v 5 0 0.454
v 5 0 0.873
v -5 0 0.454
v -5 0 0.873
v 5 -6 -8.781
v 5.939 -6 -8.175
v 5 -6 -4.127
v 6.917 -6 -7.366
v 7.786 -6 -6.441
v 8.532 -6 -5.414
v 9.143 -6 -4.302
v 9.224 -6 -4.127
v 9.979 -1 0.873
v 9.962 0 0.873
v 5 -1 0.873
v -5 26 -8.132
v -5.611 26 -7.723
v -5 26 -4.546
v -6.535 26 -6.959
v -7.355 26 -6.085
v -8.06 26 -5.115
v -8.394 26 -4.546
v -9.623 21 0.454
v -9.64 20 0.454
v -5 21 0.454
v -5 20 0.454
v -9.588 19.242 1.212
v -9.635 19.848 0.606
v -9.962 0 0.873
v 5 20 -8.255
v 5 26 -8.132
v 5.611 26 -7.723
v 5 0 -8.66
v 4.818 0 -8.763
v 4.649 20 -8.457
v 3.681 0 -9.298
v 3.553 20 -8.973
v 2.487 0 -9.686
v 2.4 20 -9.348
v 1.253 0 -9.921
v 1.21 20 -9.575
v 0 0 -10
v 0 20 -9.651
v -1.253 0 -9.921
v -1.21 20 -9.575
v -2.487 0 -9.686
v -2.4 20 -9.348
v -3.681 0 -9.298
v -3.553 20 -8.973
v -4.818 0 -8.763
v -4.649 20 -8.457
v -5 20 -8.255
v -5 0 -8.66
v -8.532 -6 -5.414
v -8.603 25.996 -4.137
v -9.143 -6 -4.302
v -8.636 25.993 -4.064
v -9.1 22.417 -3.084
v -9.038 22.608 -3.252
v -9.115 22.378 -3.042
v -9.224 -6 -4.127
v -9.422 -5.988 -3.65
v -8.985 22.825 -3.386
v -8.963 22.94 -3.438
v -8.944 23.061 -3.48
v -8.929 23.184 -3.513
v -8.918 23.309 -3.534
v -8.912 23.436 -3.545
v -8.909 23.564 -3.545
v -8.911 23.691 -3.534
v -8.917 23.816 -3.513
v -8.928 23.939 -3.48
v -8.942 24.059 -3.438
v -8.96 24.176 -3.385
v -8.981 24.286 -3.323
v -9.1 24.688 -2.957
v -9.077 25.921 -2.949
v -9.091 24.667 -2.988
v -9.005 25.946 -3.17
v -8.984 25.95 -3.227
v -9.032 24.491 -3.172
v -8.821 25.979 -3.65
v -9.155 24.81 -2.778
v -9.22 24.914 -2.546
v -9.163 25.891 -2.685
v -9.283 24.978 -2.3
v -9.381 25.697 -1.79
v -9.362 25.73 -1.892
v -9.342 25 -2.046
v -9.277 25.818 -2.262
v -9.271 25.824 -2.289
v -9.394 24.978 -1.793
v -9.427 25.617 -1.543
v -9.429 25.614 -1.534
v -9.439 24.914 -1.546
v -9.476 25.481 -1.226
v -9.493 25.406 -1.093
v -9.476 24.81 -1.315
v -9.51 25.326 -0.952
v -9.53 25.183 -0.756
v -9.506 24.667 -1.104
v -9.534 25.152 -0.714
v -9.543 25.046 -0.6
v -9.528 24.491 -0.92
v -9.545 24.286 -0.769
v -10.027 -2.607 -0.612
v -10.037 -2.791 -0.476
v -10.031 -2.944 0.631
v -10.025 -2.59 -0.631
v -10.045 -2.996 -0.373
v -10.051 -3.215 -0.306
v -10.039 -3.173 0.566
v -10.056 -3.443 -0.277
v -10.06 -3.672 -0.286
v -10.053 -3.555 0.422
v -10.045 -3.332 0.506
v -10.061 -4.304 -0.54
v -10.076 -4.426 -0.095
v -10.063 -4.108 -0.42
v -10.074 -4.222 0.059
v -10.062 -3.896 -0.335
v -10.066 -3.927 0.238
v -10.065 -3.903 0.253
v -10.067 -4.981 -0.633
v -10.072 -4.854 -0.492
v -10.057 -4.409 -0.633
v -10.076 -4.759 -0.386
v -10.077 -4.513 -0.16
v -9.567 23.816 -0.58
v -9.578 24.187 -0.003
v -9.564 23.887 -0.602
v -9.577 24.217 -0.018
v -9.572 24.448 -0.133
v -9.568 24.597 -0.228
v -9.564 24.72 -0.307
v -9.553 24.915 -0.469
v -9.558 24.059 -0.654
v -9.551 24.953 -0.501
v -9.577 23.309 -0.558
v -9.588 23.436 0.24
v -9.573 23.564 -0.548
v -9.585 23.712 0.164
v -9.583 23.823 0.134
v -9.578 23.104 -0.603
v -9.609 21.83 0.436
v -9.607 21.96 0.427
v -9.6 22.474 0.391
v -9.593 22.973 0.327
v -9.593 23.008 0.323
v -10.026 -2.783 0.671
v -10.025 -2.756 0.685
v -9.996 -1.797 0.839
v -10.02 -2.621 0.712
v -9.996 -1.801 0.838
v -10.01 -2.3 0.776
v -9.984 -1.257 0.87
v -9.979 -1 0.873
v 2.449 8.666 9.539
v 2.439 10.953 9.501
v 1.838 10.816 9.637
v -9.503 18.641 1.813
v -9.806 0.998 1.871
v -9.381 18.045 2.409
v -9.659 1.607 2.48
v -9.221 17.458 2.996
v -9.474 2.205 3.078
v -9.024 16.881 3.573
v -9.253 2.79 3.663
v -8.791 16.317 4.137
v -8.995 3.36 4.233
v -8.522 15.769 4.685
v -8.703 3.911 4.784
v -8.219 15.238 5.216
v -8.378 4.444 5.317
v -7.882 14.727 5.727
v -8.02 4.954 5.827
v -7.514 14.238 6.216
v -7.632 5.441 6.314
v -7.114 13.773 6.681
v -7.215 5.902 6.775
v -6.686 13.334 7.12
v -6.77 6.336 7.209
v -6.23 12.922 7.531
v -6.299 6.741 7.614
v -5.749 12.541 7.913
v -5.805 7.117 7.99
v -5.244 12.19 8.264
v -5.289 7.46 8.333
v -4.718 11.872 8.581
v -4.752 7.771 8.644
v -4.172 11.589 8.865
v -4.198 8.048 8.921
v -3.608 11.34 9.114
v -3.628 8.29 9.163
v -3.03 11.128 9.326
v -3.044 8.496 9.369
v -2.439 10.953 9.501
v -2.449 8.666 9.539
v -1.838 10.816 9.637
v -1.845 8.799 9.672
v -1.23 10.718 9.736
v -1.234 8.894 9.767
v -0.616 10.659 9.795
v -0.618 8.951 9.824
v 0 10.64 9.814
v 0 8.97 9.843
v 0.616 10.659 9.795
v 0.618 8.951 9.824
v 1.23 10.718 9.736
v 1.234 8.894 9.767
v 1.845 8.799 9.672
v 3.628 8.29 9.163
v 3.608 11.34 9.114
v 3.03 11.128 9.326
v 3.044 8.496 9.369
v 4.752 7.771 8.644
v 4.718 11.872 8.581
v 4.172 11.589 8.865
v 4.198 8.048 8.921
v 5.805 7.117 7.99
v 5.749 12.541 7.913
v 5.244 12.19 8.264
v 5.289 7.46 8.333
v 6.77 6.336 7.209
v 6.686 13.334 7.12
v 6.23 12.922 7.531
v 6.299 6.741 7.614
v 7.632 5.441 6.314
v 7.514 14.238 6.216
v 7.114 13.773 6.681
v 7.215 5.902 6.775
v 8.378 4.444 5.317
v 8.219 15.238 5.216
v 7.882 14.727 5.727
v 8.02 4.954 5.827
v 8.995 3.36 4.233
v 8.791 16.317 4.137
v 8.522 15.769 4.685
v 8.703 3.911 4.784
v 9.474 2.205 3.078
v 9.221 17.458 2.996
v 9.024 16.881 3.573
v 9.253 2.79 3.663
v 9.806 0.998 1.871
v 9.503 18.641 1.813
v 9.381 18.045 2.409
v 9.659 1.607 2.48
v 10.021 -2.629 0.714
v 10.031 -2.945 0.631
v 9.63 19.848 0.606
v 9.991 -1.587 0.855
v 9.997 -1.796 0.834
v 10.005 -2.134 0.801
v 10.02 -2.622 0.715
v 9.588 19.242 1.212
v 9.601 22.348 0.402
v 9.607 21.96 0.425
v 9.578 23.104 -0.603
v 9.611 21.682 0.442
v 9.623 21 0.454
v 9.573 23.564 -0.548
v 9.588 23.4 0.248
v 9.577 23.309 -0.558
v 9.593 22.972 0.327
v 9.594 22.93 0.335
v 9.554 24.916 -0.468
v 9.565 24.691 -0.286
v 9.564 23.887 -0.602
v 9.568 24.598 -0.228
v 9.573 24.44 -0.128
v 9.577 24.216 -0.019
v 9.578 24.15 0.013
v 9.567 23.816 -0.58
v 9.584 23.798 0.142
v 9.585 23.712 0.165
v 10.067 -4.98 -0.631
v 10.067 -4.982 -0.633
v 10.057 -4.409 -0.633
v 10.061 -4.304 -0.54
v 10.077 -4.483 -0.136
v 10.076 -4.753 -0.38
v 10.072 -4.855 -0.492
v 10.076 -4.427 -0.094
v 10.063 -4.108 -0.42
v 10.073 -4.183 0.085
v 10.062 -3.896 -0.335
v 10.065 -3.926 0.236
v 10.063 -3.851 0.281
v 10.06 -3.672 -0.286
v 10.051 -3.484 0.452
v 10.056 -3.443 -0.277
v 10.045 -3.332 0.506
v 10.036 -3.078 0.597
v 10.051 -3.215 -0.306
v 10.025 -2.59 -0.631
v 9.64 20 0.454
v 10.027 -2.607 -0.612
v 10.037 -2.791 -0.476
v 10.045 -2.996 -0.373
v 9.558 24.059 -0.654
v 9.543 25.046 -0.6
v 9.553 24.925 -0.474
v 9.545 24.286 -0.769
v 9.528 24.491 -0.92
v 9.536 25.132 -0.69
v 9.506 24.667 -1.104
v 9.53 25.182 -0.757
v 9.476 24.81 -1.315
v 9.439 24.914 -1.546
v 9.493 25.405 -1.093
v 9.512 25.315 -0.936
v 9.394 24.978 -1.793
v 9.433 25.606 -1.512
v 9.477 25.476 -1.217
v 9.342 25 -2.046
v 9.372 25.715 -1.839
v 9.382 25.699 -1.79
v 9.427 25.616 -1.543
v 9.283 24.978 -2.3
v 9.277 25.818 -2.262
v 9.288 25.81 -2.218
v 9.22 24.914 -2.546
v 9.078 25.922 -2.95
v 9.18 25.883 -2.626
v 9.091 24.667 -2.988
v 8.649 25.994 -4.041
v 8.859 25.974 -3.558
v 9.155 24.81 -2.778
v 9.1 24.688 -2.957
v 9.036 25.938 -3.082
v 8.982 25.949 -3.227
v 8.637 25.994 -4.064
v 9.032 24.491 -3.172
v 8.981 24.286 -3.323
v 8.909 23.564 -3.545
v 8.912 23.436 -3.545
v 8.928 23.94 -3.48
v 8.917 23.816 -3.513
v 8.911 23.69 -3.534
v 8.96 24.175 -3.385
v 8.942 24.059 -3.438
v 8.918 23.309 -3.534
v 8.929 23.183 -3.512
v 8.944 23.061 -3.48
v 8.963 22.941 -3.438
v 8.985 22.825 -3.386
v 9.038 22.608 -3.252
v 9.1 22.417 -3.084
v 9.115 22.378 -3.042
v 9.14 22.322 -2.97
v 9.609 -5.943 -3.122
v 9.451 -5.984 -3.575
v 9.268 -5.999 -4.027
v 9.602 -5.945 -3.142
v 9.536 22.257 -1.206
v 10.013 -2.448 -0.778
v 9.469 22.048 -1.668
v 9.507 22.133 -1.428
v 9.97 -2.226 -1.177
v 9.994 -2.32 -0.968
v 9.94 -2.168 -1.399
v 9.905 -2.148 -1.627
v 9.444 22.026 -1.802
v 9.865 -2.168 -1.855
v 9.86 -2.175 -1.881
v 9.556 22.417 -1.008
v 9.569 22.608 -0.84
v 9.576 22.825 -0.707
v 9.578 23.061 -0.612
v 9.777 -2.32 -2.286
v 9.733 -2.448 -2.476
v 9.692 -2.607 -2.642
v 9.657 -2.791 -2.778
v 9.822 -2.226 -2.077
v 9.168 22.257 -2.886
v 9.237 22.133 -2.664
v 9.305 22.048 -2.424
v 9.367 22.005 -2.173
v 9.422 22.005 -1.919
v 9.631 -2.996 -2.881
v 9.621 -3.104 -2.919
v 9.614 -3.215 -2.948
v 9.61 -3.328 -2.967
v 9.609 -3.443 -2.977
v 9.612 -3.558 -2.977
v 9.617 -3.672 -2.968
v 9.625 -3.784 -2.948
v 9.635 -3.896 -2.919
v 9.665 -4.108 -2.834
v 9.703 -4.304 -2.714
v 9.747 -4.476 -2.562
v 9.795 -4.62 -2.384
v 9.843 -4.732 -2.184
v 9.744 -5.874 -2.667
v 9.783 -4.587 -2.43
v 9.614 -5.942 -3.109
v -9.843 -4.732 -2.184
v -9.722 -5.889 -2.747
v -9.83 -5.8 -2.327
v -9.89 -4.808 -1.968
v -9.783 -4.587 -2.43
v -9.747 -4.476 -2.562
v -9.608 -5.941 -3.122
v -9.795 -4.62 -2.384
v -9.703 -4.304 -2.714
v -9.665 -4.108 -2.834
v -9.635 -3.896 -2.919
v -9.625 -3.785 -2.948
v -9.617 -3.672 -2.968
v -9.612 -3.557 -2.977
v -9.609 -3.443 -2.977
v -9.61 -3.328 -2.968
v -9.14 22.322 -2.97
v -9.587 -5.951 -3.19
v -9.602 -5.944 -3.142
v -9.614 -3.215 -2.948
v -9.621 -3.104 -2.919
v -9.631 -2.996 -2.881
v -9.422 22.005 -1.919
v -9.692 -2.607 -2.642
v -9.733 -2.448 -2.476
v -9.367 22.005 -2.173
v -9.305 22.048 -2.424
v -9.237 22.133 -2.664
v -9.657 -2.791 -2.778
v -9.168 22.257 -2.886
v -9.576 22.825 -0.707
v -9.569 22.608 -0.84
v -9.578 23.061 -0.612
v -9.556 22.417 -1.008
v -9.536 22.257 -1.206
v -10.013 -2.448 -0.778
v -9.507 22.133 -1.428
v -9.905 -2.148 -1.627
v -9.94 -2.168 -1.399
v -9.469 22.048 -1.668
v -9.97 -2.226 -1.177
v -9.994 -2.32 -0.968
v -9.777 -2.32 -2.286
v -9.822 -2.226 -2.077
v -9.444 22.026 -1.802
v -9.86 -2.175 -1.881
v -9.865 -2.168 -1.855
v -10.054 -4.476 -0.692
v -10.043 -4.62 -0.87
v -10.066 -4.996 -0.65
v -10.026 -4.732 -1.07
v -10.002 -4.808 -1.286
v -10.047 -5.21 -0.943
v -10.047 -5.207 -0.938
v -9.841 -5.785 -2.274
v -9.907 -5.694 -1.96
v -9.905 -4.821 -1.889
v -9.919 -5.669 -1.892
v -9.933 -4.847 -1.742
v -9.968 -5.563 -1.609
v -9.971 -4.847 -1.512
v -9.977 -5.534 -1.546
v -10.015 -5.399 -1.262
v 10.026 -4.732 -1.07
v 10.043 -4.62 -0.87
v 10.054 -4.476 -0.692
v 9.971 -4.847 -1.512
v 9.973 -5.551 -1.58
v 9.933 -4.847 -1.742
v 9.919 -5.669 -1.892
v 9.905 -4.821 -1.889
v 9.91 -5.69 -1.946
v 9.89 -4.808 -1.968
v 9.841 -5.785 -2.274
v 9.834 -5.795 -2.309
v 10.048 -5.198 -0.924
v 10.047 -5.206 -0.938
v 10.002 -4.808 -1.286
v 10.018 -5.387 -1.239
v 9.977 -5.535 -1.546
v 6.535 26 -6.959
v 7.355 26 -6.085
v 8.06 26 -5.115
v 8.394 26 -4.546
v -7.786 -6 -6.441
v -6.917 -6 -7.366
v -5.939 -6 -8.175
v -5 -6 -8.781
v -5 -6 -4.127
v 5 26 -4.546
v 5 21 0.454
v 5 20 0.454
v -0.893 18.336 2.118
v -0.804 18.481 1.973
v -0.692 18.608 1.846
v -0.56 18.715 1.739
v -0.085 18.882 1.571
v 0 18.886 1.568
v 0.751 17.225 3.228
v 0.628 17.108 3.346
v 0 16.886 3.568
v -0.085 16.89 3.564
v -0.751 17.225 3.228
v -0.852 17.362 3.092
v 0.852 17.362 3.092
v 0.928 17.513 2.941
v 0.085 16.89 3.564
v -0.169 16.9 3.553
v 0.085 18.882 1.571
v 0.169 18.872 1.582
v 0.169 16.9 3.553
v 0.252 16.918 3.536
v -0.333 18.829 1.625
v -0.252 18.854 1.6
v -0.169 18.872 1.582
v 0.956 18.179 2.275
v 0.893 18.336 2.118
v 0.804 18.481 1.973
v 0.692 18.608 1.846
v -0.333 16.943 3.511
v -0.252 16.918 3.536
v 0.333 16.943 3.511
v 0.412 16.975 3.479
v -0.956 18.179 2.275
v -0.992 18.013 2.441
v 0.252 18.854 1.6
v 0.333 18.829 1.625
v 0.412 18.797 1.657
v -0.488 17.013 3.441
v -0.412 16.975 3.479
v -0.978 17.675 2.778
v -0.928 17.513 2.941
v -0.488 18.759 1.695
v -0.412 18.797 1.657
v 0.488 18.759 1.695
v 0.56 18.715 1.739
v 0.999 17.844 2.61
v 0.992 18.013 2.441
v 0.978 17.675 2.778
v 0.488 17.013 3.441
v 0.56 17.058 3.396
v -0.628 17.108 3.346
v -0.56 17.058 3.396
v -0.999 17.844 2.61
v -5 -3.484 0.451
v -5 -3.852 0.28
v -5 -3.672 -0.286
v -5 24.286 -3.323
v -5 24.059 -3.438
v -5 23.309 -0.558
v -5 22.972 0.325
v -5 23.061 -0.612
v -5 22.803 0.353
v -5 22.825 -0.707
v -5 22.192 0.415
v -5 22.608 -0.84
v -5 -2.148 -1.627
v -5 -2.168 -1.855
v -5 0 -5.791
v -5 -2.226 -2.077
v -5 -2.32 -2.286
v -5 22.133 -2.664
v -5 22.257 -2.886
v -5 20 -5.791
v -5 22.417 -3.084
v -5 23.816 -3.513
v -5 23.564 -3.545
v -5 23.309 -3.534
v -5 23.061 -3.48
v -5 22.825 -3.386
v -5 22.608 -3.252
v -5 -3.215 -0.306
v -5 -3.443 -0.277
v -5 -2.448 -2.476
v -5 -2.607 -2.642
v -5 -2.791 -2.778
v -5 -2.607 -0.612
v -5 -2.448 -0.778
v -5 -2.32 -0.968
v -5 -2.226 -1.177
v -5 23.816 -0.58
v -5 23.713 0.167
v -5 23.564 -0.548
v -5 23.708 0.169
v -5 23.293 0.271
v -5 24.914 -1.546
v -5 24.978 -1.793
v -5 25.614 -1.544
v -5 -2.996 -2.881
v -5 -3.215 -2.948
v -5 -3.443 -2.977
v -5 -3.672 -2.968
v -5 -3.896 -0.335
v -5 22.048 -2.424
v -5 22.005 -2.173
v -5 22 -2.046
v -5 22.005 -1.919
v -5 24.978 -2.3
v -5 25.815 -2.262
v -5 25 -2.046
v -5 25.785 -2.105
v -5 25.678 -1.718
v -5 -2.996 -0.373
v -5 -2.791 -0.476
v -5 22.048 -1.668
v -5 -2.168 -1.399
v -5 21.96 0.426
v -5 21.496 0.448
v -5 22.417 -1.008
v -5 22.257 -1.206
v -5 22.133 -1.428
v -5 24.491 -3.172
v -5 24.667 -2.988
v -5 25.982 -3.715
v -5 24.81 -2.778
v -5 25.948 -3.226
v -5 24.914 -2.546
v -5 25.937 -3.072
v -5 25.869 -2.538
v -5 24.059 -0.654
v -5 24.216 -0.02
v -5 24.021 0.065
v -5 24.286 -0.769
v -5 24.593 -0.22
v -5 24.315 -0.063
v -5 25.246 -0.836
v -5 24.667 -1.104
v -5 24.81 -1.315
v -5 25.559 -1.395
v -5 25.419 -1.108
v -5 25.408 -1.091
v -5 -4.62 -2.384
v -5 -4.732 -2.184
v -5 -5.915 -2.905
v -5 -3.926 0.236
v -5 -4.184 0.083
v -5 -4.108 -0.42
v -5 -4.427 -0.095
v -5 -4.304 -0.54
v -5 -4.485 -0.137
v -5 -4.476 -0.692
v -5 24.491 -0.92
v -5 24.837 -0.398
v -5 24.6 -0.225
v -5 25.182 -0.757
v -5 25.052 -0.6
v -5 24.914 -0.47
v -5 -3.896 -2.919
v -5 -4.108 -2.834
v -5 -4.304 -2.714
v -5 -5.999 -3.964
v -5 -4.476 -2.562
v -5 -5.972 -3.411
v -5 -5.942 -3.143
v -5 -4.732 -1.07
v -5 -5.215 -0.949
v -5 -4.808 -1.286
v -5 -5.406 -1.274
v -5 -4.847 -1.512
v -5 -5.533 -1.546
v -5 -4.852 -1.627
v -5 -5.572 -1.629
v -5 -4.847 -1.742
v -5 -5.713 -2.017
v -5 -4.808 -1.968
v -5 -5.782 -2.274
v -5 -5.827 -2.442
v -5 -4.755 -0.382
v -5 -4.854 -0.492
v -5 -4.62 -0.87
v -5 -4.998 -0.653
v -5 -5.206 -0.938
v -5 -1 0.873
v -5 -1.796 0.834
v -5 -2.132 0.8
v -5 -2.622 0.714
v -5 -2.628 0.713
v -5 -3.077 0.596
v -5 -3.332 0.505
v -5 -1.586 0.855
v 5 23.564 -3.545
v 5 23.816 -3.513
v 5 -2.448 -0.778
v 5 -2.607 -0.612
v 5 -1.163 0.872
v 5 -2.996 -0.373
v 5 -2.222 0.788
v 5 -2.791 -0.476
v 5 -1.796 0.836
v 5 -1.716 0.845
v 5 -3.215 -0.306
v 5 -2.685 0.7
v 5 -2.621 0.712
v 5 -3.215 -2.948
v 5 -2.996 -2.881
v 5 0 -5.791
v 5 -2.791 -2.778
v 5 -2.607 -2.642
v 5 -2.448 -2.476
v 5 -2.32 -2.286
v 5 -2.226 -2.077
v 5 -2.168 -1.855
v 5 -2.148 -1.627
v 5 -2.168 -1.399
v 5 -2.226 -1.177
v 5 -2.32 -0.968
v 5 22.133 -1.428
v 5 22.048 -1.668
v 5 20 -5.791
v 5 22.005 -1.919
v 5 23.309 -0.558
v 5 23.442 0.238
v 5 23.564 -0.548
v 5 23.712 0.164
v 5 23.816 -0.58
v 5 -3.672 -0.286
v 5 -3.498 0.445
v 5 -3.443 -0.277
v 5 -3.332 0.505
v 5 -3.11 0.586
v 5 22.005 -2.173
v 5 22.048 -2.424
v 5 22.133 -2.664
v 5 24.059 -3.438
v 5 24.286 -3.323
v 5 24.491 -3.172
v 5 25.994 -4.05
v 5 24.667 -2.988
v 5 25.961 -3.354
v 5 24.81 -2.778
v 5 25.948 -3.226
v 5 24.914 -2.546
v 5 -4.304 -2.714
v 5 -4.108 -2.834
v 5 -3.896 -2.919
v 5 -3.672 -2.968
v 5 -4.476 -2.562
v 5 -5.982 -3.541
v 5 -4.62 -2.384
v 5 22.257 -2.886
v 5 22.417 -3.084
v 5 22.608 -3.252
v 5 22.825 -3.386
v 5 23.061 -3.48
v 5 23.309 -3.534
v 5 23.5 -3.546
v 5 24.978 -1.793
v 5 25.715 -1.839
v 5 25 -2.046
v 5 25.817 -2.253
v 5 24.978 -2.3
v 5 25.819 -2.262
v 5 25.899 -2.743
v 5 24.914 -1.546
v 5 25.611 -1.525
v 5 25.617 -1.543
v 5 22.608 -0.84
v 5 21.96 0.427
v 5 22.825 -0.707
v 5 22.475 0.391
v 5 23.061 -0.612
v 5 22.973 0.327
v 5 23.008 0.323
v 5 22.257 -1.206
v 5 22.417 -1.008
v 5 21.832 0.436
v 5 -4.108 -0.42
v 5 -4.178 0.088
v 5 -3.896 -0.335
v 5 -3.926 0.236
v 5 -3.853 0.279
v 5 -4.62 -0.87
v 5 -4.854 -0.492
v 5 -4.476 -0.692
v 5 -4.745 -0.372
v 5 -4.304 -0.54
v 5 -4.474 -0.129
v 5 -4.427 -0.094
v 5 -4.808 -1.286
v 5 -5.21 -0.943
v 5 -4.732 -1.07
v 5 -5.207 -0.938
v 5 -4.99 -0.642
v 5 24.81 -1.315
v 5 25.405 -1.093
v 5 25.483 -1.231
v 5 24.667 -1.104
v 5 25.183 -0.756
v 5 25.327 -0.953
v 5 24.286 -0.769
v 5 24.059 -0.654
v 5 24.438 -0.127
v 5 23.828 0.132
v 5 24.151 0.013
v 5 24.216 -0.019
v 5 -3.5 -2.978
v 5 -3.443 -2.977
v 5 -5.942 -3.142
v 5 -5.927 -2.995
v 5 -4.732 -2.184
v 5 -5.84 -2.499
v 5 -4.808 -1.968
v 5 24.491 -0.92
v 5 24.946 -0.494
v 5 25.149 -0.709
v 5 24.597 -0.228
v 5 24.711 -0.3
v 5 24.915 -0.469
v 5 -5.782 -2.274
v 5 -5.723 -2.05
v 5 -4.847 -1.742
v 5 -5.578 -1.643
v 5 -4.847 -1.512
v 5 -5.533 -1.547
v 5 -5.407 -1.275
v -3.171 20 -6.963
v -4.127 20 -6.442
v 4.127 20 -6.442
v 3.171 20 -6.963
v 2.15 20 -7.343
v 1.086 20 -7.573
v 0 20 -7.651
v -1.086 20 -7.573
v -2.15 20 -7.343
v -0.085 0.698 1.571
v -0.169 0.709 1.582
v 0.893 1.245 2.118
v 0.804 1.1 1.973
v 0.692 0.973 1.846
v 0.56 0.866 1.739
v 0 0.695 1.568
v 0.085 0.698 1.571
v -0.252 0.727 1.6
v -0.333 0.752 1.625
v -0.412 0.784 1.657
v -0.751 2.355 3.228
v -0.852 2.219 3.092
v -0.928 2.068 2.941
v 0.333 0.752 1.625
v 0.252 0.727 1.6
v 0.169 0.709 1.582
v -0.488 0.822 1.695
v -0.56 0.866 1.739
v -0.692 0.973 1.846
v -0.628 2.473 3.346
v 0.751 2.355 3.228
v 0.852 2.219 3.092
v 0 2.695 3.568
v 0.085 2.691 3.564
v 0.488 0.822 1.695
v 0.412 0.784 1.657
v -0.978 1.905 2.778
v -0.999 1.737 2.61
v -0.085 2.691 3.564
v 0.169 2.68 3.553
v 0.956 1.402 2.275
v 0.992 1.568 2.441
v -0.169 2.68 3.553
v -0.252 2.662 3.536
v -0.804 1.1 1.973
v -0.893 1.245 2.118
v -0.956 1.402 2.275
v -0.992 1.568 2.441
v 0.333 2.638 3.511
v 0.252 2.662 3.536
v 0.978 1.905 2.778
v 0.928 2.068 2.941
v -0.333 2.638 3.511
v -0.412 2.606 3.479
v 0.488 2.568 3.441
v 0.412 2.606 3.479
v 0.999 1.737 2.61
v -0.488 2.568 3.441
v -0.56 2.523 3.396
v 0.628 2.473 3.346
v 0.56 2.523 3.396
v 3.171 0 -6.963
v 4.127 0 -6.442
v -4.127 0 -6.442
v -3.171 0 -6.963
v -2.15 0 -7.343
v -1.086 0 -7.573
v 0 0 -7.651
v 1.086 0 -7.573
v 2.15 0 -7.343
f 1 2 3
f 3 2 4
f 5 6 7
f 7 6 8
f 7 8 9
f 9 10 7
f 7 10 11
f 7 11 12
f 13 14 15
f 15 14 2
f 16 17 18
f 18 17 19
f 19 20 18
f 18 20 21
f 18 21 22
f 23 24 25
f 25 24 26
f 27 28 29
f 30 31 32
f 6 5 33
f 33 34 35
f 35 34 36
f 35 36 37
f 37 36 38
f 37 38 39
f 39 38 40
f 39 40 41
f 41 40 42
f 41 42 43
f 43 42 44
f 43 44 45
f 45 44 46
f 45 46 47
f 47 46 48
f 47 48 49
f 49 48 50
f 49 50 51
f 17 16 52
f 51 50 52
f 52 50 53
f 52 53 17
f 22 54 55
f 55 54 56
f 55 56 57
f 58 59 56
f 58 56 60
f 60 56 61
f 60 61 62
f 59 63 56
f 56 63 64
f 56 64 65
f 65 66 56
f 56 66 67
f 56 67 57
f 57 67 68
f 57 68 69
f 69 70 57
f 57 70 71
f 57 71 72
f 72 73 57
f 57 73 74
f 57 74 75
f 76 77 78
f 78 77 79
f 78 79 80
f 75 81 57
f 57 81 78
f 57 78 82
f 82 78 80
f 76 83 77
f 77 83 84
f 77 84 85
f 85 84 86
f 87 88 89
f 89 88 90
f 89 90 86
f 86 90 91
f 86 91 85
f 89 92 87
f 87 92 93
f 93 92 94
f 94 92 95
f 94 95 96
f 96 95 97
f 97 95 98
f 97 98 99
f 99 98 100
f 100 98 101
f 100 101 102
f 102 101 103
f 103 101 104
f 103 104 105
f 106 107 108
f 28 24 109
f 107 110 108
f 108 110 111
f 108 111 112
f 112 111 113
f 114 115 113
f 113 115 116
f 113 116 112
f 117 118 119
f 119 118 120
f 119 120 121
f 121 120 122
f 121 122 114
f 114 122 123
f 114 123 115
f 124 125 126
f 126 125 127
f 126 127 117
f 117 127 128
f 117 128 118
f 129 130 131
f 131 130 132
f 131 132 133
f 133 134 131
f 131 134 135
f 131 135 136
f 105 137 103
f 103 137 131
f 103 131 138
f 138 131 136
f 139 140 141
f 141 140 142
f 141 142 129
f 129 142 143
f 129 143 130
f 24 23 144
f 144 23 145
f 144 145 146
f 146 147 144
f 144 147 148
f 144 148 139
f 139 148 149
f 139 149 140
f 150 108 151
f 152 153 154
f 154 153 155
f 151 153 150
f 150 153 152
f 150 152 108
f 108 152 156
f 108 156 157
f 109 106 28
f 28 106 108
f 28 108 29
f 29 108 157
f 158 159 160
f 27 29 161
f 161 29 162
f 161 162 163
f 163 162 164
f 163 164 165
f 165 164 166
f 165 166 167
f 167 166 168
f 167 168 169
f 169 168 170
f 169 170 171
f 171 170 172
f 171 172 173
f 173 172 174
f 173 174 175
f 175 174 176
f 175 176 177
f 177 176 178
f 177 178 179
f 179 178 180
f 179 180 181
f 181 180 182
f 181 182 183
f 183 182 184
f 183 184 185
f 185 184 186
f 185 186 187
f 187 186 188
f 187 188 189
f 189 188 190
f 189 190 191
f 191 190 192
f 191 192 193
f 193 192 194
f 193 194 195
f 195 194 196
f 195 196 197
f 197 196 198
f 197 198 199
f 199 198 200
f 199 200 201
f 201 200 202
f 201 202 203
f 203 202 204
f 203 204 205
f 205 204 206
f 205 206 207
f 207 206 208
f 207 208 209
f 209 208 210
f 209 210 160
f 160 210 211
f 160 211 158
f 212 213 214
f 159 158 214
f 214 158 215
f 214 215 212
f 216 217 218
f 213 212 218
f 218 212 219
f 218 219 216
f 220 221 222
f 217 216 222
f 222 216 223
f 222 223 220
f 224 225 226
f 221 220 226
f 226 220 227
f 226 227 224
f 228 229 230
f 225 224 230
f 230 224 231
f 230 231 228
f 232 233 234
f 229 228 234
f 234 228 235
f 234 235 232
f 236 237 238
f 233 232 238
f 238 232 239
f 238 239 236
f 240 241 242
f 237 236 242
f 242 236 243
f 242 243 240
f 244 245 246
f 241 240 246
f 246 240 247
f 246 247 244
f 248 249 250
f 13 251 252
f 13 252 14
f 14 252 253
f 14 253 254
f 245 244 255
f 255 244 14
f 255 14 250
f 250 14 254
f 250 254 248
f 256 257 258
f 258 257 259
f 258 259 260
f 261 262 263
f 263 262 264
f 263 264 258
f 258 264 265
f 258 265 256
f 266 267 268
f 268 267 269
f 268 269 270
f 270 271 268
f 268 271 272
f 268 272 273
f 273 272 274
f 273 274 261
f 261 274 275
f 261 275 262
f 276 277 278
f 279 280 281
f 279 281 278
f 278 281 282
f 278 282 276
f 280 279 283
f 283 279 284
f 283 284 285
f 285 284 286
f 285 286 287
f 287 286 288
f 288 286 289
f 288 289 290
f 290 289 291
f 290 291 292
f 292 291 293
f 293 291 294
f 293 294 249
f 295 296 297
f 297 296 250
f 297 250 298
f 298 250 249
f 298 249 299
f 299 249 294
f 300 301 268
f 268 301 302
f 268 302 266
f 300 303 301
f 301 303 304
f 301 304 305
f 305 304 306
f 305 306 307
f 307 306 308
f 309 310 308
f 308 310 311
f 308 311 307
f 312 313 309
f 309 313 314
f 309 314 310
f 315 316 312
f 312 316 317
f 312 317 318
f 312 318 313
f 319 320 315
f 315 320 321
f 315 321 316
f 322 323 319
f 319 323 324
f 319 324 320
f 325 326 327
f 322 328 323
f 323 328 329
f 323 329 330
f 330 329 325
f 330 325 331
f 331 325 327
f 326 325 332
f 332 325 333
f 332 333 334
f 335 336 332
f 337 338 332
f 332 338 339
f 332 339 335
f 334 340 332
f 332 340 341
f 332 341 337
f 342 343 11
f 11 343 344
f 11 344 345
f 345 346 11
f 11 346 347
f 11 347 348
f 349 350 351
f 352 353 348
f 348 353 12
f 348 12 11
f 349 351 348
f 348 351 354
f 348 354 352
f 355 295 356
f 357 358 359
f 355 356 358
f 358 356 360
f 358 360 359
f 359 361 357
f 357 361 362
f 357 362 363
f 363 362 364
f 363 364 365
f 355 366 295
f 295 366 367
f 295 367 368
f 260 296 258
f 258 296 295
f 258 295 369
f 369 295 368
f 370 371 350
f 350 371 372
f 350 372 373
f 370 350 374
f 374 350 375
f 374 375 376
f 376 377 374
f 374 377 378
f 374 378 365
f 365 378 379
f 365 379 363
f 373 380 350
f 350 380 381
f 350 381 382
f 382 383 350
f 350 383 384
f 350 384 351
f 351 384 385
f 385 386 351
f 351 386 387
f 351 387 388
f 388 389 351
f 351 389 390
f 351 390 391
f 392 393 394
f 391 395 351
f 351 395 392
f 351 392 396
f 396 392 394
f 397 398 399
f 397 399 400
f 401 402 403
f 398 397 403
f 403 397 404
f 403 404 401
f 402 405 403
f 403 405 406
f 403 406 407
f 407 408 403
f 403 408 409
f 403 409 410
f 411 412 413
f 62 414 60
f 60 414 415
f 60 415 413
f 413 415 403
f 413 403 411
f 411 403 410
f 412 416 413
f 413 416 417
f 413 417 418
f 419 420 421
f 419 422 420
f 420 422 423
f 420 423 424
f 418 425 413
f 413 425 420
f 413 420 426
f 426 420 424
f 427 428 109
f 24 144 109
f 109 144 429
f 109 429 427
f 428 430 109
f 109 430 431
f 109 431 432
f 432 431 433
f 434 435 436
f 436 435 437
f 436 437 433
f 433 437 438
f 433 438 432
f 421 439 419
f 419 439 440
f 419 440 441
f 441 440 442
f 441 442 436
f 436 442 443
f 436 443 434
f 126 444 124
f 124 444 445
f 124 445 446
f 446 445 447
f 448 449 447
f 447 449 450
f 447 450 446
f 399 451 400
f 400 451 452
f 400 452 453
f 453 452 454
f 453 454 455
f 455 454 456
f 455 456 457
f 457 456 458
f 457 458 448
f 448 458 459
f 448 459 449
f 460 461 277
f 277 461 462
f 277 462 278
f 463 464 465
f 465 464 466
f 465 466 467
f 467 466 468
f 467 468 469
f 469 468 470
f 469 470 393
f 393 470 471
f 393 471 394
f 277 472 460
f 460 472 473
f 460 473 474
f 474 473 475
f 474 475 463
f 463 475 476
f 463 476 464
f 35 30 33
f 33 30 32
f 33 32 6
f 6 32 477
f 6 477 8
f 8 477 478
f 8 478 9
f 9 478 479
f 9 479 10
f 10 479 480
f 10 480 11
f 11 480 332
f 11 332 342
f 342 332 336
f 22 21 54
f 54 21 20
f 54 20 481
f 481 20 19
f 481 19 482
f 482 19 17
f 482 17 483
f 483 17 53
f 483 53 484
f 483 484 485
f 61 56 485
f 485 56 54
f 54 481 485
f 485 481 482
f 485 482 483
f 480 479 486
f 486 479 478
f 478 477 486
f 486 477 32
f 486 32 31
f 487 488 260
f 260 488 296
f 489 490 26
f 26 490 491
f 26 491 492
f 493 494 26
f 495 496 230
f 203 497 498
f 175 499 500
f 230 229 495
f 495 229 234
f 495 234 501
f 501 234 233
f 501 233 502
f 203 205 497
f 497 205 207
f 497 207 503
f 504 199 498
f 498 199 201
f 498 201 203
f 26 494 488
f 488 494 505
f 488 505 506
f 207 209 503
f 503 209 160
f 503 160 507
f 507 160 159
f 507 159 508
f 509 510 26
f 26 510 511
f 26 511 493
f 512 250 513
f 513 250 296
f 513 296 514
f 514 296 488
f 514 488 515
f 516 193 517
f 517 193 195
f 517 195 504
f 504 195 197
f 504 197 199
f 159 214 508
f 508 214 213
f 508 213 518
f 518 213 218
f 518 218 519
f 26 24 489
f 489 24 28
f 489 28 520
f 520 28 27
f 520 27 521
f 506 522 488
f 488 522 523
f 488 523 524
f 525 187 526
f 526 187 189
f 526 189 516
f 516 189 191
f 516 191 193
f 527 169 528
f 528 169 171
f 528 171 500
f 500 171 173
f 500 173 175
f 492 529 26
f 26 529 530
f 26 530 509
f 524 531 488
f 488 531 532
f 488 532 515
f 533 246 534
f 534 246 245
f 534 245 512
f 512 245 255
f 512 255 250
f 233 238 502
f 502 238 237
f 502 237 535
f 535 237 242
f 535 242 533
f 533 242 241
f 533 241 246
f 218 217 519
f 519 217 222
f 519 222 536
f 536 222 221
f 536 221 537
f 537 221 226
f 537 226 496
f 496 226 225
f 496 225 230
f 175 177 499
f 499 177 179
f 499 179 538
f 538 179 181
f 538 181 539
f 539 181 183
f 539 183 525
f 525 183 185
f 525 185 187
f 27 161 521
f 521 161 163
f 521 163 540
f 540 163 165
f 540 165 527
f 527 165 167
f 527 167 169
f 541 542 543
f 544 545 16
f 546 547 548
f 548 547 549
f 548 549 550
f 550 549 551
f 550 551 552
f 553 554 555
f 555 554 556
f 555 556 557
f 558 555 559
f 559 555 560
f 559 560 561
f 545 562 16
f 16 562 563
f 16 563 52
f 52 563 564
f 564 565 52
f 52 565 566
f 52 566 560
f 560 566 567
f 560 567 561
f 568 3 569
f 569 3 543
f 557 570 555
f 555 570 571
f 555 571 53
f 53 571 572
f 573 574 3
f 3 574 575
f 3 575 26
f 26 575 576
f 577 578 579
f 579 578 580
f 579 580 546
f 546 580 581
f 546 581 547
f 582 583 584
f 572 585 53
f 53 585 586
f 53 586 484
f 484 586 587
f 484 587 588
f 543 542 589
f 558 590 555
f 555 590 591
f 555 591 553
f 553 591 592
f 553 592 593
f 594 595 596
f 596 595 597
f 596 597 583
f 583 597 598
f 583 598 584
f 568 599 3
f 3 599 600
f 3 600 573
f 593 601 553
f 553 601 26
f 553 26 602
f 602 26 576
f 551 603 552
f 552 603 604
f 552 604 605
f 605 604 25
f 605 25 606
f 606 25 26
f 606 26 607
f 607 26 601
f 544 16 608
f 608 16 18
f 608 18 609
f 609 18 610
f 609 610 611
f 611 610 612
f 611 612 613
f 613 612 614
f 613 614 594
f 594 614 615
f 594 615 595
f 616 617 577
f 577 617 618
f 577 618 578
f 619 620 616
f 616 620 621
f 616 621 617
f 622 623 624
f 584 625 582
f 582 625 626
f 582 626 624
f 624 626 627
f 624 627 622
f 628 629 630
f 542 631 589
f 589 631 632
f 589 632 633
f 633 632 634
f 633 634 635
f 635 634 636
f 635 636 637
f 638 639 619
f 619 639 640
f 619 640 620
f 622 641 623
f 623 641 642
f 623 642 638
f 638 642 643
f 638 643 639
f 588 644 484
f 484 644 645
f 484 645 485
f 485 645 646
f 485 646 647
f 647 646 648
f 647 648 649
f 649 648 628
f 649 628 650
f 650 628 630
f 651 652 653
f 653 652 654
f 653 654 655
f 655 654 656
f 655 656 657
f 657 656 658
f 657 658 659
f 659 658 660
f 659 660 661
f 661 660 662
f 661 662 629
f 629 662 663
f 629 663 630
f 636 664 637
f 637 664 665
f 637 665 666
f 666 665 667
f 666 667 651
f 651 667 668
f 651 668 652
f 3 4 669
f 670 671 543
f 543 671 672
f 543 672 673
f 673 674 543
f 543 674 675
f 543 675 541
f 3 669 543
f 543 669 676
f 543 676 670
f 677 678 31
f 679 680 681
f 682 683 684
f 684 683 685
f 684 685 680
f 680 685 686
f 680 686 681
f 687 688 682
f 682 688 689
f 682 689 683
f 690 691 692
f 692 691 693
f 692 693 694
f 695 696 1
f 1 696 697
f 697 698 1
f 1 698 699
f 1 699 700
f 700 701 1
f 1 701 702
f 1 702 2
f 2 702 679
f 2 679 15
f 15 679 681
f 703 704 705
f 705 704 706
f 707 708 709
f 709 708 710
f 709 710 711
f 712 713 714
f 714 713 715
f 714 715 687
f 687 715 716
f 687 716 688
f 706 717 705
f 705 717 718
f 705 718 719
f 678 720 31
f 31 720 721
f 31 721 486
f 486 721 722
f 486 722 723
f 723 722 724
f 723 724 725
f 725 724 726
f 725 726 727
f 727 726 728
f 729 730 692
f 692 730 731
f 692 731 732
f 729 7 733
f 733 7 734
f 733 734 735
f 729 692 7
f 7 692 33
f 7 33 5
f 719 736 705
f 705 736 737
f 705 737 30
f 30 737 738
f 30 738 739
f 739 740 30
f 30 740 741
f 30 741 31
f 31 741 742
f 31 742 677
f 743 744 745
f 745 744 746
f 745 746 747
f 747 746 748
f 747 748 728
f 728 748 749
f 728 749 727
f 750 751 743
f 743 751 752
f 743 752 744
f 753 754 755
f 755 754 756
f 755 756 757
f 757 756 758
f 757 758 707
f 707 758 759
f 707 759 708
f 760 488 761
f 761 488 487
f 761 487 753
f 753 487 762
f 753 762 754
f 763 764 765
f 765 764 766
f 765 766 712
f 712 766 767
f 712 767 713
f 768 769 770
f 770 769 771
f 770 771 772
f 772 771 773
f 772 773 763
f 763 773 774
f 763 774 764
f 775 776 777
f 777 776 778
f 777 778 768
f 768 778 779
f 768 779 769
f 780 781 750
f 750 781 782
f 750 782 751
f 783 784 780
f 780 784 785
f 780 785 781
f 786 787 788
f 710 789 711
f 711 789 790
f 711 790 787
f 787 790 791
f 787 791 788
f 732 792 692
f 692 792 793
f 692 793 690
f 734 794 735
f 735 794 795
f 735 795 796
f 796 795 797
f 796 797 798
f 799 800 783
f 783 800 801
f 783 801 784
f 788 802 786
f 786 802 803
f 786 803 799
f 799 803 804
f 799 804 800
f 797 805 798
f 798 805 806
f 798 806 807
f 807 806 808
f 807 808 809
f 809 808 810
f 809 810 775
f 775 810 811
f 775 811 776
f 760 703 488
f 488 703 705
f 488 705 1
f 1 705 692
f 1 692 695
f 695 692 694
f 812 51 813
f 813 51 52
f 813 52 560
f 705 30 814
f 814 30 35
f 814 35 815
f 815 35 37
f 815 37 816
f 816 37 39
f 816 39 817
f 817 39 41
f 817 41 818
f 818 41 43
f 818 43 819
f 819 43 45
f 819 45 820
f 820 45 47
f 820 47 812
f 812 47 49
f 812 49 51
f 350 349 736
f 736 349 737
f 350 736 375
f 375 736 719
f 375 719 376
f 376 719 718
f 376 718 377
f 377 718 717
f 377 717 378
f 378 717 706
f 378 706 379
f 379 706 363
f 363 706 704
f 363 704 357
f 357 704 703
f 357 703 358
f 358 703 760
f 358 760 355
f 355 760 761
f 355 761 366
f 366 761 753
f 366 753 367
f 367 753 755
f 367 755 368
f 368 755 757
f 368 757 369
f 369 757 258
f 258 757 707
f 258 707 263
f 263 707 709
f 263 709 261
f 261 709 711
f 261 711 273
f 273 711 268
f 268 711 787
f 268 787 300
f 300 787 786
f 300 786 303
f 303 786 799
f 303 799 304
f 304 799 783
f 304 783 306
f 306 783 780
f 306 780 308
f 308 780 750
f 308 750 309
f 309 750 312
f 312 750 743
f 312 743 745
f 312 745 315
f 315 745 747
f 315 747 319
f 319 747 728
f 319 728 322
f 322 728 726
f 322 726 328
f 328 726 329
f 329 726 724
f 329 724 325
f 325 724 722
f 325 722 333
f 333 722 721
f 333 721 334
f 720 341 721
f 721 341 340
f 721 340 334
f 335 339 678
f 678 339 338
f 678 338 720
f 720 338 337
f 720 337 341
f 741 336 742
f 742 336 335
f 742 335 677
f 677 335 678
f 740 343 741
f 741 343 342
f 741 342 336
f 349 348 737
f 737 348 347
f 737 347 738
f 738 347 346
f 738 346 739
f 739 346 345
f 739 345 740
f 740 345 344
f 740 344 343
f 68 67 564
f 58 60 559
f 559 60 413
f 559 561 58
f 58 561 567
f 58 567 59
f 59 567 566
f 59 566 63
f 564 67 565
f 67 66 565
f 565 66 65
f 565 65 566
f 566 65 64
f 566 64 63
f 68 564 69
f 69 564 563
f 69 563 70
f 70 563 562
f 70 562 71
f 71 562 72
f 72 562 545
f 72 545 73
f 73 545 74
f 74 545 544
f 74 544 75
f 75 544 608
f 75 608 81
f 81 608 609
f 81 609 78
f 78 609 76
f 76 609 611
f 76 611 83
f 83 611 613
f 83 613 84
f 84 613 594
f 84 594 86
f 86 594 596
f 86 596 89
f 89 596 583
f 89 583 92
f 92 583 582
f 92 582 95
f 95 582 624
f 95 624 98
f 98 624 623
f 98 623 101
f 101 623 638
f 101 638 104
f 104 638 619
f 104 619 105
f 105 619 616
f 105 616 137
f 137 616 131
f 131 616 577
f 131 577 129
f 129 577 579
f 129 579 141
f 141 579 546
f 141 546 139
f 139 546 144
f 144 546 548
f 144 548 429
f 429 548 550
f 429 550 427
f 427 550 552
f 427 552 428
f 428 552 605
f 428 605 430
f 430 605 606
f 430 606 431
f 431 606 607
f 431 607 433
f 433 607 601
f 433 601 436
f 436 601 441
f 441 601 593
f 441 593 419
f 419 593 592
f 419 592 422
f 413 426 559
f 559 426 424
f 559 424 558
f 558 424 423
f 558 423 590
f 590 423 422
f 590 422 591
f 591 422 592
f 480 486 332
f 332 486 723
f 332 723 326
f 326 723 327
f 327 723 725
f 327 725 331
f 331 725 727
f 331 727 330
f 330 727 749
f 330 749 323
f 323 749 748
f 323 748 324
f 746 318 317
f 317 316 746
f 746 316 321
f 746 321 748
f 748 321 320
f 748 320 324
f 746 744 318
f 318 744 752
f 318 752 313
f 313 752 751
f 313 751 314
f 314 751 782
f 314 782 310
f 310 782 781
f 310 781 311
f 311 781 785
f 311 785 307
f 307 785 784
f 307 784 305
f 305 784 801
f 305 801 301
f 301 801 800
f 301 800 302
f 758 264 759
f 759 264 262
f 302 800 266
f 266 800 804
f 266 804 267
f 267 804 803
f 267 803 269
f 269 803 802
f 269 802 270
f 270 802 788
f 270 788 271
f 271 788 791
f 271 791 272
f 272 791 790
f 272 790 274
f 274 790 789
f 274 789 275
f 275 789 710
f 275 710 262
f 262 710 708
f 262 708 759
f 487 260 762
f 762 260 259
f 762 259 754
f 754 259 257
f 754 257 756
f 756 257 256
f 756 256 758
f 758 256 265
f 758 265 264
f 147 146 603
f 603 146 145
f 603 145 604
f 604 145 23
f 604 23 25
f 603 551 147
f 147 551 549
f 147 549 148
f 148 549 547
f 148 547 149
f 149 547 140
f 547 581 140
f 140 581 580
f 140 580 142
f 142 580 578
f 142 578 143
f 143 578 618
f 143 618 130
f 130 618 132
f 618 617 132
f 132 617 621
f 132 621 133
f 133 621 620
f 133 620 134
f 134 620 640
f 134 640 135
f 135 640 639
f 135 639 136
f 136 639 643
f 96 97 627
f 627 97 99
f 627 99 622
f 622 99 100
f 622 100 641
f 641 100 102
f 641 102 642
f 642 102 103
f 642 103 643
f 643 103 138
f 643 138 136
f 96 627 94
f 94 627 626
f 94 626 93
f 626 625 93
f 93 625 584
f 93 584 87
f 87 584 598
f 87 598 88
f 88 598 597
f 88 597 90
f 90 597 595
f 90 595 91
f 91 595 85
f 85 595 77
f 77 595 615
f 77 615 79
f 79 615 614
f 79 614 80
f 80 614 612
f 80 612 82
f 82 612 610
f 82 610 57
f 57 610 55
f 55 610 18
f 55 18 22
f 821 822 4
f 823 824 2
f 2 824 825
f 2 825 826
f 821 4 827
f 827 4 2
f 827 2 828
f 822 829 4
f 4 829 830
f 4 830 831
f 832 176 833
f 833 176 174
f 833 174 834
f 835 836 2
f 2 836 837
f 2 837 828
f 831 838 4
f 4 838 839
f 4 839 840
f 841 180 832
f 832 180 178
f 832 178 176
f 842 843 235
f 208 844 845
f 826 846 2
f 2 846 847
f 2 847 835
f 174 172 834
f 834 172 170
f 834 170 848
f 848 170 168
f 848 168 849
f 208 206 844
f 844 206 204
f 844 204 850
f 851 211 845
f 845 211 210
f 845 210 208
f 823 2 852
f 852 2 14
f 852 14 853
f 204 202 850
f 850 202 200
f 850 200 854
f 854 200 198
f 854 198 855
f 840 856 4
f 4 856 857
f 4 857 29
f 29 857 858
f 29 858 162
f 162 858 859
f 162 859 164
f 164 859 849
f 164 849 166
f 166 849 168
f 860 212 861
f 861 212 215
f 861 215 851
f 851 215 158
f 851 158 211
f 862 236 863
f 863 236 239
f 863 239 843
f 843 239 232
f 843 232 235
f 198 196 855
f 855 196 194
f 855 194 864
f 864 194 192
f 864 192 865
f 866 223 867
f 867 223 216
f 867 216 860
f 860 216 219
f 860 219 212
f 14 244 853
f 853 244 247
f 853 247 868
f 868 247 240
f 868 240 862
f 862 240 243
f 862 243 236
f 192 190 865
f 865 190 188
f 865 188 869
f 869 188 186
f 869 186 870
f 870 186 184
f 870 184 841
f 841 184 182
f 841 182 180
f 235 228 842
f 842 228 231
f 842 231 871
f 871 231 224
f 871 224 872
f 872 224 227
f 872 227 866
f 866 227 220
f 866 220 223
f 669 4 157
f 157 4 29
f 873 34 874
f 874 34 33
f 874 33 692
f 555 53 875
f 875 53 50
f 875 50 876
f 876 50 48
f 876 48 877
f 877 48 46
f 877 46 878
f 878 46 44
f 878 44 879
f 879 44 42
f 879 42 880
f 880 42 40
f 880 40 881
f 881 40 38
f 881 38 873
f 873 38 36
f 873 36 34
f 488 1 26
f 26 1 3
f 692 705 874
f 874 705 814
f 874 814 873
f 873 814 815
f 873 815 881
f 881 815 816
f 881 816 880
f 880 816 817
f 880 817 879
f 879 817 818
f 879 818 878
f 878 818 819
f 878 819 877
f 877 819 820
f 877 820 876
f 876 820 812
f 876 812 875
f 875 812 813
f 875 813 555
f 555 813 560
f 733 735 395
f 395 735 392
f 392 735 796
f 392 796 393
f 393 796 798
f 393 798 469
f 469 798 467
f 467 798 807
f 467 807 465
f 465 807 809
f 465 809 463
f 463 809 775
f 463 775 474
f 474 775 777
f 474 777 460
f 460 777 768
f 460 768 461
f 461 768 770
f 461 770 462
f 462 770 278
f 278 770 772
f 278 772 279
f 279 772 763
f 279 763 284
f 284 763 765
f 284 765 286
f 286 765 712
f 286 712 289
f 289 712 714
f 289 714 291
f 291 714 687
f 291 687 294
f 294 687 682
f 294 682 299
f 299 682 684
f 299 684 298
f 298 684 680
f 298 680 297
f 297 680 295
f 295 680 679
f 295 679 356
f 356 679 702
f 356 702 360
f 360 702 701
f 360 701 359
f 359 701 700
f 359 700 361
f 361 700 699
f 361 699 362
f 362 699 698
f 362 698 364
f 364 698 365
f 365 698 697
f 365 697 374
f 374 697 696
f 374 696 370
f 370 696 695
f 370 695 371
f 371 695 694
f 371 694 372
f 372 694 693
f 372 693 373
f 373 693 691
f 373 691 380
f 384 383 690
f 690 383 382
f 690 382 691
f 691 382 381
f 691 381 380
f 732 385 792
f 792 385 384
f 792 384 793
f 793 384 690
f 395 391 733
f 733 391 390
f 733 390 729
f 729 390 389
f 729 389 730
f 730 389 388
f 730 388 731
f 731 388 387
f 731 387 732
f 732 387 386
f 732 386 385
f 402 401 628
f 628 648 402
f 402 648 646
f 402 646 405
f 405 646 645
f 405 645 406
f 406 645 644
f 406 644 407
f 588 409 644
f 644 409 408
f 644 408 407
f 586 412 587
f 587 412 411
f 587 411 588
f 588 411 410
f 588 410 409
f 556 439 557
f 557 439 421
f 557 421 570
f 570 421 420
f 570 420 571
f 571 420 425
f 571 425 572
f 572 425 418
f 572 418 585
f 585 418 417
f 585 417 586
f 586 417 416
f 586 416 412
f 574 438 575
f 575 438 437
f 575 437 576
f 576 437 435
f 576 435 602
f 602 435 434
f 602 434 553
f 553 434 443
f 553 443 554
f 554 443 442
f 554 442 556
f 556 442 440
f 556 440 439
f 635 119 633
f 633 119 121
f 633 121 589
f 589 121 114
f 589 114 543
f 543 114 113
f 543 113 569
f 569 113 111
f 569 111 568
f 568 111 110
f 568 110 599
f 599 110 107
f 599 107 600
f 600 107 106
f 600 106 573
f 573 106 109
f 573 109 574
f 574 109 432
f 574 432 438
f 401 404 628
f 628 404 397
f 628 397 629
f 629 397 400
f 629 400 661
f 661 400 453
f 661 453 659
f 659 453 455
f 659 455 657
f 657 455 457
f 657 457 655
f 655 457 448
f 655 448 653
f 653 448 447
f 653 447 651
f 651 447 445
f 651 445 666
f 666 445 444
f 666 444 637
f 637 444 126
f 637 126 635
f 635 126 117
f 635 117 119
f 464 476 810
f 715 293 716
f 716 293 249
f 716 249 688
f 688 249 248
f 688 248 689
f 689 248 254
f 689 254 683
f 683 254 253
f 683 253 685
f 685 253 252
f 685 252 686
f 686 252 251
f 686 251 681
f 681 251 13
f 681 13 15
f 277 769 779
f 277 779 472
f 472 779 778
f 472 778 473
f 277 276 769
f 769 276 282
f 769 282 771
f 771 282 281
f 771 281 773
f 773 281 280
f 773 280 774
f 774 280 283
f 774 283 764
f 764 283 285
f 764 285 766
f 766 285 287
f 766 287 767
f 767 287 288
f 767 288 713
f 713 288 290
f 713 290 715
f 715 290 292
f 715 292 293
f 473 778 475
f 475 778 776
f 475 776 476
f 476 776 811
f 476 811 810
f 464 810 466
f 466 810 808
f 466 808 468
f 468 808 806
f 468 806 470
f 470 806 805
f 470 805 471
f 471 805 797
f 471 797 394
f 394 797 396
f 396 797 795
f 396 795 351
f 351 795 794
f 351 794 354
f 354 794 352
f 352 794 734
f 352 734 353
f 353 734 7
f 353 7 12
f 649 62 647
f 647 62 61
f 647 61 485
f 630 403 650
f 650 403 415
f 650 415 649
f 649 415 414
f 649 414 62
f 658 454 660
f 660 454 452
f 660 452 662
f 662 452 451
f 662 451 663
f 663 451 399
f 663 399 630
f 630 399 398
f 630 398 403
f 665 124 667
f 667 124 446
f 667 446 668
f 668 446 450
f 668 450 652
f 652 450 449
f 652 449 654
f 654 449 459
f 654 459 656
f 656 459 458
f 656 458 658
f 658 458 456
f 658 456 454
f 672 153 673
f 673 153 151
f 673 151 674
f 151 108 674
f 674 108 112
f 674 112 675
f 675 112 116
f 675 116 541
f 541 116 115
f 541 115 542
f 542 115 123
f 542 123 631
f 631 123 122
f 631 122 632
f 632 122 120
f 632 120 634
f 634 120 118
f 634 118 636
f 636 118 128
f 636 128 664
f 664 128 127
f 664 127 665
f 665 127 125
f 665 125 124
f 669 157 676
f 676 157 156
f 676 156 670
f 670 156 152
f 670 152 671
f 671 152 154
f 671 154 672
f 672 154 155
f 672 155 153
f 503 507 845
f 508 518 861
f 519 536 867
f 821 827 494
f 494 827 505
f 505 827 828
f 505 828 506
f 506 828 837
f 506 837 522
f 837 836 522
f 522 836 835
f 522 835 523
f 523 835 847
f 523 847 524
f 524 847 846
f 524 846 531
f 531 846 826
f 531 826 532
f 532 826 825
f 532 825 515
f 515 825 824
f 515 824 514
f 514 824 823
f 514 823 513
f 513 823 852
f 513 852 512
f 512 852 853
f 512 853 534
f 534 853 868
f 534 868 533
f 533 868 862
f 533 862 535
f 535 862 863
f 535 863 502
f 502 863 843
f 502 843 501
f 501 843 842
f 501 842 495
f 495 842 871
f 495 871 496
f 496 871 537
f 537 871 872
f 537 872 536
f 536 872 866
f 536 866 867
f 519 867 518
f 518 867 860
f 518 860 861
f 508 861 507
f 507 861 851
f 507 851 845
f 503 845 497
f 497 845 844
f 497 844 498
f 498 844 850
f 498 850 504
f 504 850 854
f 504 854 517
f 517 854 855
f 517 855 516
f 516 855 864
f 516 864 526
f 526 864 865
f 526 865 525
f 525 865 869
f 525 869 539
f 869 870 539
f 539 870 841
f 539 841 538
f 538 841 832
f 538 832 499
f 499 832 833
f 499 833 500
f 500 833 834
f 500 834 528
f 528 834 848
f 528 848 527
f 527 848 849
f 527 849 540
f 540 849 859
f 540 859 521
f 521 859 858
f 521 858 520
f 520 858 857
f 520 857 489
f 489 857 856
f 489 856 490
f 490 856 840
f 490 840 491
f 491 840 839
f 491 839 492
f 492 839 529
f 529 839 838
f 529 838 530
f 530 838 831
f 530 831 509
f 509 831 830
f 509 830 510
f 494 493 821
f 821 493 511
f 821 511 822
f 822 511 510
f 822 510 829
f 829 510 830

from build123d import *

# Parameters (mm, degrees)
SKETCH1_R                     = 10
BOSS_EXTRUDE1_DEPTH           = 26
BOSS_EXTRUDE1_TAPER           = 1
BOSS_EXTRUDE1_OTHER_WAY_DEPTH = 6
BOSS_EXTRUDE1_OTHER_WAY_TAPER = -1
CUT_EXTRUDE1_DEPTH            = 30.668352709
CUT_EXTRUDE1_DEPTH_BACK       = 30.668352709
SKETCH3_W                     = 10
SKETCH3_H                     = 6
CUT_EXTRUDE2_DEPTH            = 25
CUT_EXTRUDE3_DEPTH            = 32.721577304
CUT_EXTRUDE3_DEPTH_BACK       = 32.721577304
SKETCH4_R                     = 1.5
FILLET2_SIZE                  = 5
CUT_EXTRUDE5_DEPTH            = 30.668352865
CUT_EXTRUDE5_DEPTH_BACK       = 30.668352865
SKETCH8_W                     = 10
SKETCH8_H                     = 6
CUT_EXTRUDE6_DEPTH            = 30.976934008
CUT_EXTRUDE7_DEPTH            = 30.632846395
CUT_EXTRUDE8_DEPTH            = 32.688371532
CUT_EXTRUDE8_DEPTH_BACK       = 32.688371532
SKETCH9_R                     = 1.351518808
FILLET3_SIZE                  = 5
SKETCH10_R                    = 1
CUT_EXTRUDE9_DEPTH            = 30.623606957


with BuildPart() as part:
    # Sketch1 → Boss-Extrude1 (new body)
    with BuildSketch(Plane(origin=(0, 0, 0), x_dir=(1, 0, 0), z_dir=(0, 1, 0))):
        Circle(SKETCH1_R)
    extrude(amount=BOSS_EXTRUDE1_DEPTH, taper=BOSS_EXTRUDE1_TAPER)

    # Sketch1 → Boss-Extrude1 other way (add)
    with BuildSketch(Plane(origin=(0, 0, 0), x_dir=(1, 0, 0), z_dir=(0, 1, 0))):
        Circle(SKETCH1_R)
    extrude(amount=-BOSS_EXTRUDE1_OTHER_WAY_DEPTH, taper=BOSS_EXTRUDE1_OTHER_WAY_TAPER)

    # Sketch2 → Cut-Extrude1 (cut, two sides: drawn at the far end of the back side and taken through both)
    with BuildSketch(Plane(origin=(0, 0, 0), x_dir=(0, 0, -1), z_dir=(1, 0, 0)).offset(-CUT_EXTRUDE1_DEPTH_BACK)):
        Polygon((-0.453831688, 26), (-0.453831688, 20), (-13.188542788, 7.2652889), (-13.188542788, 26), align=None)
    extrude(amount=CUT_EXTRUDE1_DEPTH + CUT_EXTRUDE1_DEPTH_BACK, mode=Mode.SUBTRACT)

    # Sketch3 → Cut-Extrude2 (cut)
    with BuildSketch(Plane.XY.offset(0.453831688)):
        with Locations((0, 23)):
            Rectangle(SKETCH3_W, SKETCH3_H)
    extrude(amount=-CUT_EXTRUDE2_DEPTH, mode=Mode.SUBTRACT)

    # Sketch4 → Cut-Extrude3 (cut, two sides: drawn at the far end of the back side and taken through both)
    with BuildSketch(Plane(origin=(-5, 0, 0), x_dir=(0, 0, -1), z_dir=(1, 0, 0)).offset(-CUT_EXTRUDE3_DEPTH_BACK)):
        with Locations((2.046168312, 23.5)):
            Circle(SKETCH4_R)
    extrude(amount=CUT_EXTRUDE3_DEPTH + CUT_EXTRUDE3_DEPTH_BACK, mode=Mode.SUBTRACT)

    # Fillet2
    # a fillet whose section is not a circle: 5 mm, written as the material it takes off along each edge
    with BuildSketch(Plane(origin=(-7.5, 26, 0.453831688), x_dir=(0, -1, 0), z_dir=(1, 0, 0))) as fillet2_piece_1:
        with BuildLine():
            Bezier((FILLET2_SIZE, 0), (0, 0), (0, FILLET2_SIZE), weights=[1, 1.5, 1])
            Line((0, FILLET2_SIZE), (0, 0))
            Line((0, 0), (FILLET2_SIZE, 0))
        make_face()
    extrude(amount=29.535374468, mode=Mode.SUBTRACT)
    with BuildSketch(Plane(origin=(-22.035374468, 26, 0.453831688), x_dir=(0, 0, -1), z_dir=(1, 0, 0))) as fillet2_piece_2:
        with BuildLine():
            Bezier((FILLET2_SIZE, 0), (0, 0), (0, -FILLET2_SIZE), weights=[1, 1.5, 1])
            Line((0, -FILLET2_SIZE), (0, 0))
            Line((0, 0), (FILLET2_SIZE, 0))
        make_face()
    extrude(amount=29.535374468, mode=Mode.SUBTRACT)

    # Sketch7 → Cut-Extrude5 (cut, two sides: drawn at the far end of the back side and taken through both)
    with BuildSketch(Plane(origin=(0, 0, 0), x_dir=(0, 0, -1), z_dir=(1, 0, 0)).offset(-CUT_EXTRUDE5_DEPTH_BACK)):
        Polygon((-0.873019237, -6), (-0.873019237, 0), (-11.31781305, 10.444793812), (-11.31781305, -6), align=None)
    extrude(amount=CUT_EXTRUDE5_DEPTH + CUT_EXTRUDE5_DEPTH_BACK, mode=Mode.SUBTRACT)

    # Sketch8 → Cut-Extrude6 (cut, through all)
    with BuildSketch(Plane.XY.offset(0.873019237)):
        with Locations((0, -3)):
            Rectangle(SKETCH8_W, SKETCH8_H)
    extrude(amount=-CUT_EXTRUDE6_DEPTH, mode=Mode.SUBTRACT)

    # Sketch6 → Cut-Extrude7 (cut, through all)
    with BuildSketch(Plane(origin=(0, 20, 0), x_dir=(1, 0, 0), z_dir=(0, 1, 0))):
        with BuildLine():
            Line((5, 5.791049209), (5, -0.453831688))
            Line((5, -0.453831688), (-5, -0.453831688))
            Line((-5, -0.453831688), (-5, 5.791049209))
            ThreePointArc((-5, 5.791049209), (0, 7.650898701), (5, 5.791049209))
        make_face()
    extrude(amount=-CUT_EXTRUDE7_DEPTH, mode=Mode.SUBTRACT)

    # Sketch9 → Cut-Extrude8 (cut, two sides: drawn at the far end of the back side and taken through both)
    with BuildSketch(Plane(origin=(-5, 0, 0), x_dir=(0, 0, -1), z_dir=(1, 0, 0)).offset(-CUT_EXTRUDE8_DEPTH_BACK)):
        with Locations((1.626980763, -3.5)):
            Circle(SKETCH9_R)
    extrude(amount=CUT_EXTRUDE8_DEPTH + CUT_EXTRUDE8_DEPTH_BACK, mode=Mode.SUBTRACT)

    # Fillet3
    # a fillet whose section is not a circle: 5 mm, written as the material it takes off along each edge
    with BuildSketch(Plane(origin=(22.566946591, -6, 0.873019237), x_dir=(0, 0, -1), z_dir=(-1, 0, 0))) as fillet3_piece_1:
        with BuildLine():
            Bezier((FILLET3_SIZE, 0), (0, 0), (0, -FILLET3_SIZE), weights=[1, 1, 1])
            Line((0, -FILLET3_SIZE), (0, 0))
            Line((0, 0), (FILLET3_SIZE, 0))
        make_face()
    extrude(amount=30.066946591, mode=Mode.SUBTRACT)
    with BuildSketch(Plane(origin=(7.5, -6, 0.873019237), x_dir=(0, 1, 0), z_dir=(-1, 0, 0))) as fillet3_piece_2:
        with BuildLine():
            Bezier((FILLET3_SIZE, 0), (0, 0), (0, FILLET3_SIZE), weights=[1, 1, 1])
            Line((0, FILLET3_SIZE), (0, 0))
            Line((0, 0), (FILLET3_SIZE, 0))
        make_face()
    extrude(amount=30.066946591, mode=Mode.SUBTRACT)

    # Sketch10 → Cut-Extrude9 (cut, through all)
    with BuildSketch(Plane(origin=(0, 20, 0), x_dir=(1, 0, 0), z_dir=(0, 1, 0))):
        with Locations(Location((0, -2.56777392, 0), (0, 0, 270))):
            Circle(SKETCH10_R)
    extrude(amount=-CUT_EXTRUDE9_DEPTH, mode=Mode.SUBTRACT)


solid = part.part
